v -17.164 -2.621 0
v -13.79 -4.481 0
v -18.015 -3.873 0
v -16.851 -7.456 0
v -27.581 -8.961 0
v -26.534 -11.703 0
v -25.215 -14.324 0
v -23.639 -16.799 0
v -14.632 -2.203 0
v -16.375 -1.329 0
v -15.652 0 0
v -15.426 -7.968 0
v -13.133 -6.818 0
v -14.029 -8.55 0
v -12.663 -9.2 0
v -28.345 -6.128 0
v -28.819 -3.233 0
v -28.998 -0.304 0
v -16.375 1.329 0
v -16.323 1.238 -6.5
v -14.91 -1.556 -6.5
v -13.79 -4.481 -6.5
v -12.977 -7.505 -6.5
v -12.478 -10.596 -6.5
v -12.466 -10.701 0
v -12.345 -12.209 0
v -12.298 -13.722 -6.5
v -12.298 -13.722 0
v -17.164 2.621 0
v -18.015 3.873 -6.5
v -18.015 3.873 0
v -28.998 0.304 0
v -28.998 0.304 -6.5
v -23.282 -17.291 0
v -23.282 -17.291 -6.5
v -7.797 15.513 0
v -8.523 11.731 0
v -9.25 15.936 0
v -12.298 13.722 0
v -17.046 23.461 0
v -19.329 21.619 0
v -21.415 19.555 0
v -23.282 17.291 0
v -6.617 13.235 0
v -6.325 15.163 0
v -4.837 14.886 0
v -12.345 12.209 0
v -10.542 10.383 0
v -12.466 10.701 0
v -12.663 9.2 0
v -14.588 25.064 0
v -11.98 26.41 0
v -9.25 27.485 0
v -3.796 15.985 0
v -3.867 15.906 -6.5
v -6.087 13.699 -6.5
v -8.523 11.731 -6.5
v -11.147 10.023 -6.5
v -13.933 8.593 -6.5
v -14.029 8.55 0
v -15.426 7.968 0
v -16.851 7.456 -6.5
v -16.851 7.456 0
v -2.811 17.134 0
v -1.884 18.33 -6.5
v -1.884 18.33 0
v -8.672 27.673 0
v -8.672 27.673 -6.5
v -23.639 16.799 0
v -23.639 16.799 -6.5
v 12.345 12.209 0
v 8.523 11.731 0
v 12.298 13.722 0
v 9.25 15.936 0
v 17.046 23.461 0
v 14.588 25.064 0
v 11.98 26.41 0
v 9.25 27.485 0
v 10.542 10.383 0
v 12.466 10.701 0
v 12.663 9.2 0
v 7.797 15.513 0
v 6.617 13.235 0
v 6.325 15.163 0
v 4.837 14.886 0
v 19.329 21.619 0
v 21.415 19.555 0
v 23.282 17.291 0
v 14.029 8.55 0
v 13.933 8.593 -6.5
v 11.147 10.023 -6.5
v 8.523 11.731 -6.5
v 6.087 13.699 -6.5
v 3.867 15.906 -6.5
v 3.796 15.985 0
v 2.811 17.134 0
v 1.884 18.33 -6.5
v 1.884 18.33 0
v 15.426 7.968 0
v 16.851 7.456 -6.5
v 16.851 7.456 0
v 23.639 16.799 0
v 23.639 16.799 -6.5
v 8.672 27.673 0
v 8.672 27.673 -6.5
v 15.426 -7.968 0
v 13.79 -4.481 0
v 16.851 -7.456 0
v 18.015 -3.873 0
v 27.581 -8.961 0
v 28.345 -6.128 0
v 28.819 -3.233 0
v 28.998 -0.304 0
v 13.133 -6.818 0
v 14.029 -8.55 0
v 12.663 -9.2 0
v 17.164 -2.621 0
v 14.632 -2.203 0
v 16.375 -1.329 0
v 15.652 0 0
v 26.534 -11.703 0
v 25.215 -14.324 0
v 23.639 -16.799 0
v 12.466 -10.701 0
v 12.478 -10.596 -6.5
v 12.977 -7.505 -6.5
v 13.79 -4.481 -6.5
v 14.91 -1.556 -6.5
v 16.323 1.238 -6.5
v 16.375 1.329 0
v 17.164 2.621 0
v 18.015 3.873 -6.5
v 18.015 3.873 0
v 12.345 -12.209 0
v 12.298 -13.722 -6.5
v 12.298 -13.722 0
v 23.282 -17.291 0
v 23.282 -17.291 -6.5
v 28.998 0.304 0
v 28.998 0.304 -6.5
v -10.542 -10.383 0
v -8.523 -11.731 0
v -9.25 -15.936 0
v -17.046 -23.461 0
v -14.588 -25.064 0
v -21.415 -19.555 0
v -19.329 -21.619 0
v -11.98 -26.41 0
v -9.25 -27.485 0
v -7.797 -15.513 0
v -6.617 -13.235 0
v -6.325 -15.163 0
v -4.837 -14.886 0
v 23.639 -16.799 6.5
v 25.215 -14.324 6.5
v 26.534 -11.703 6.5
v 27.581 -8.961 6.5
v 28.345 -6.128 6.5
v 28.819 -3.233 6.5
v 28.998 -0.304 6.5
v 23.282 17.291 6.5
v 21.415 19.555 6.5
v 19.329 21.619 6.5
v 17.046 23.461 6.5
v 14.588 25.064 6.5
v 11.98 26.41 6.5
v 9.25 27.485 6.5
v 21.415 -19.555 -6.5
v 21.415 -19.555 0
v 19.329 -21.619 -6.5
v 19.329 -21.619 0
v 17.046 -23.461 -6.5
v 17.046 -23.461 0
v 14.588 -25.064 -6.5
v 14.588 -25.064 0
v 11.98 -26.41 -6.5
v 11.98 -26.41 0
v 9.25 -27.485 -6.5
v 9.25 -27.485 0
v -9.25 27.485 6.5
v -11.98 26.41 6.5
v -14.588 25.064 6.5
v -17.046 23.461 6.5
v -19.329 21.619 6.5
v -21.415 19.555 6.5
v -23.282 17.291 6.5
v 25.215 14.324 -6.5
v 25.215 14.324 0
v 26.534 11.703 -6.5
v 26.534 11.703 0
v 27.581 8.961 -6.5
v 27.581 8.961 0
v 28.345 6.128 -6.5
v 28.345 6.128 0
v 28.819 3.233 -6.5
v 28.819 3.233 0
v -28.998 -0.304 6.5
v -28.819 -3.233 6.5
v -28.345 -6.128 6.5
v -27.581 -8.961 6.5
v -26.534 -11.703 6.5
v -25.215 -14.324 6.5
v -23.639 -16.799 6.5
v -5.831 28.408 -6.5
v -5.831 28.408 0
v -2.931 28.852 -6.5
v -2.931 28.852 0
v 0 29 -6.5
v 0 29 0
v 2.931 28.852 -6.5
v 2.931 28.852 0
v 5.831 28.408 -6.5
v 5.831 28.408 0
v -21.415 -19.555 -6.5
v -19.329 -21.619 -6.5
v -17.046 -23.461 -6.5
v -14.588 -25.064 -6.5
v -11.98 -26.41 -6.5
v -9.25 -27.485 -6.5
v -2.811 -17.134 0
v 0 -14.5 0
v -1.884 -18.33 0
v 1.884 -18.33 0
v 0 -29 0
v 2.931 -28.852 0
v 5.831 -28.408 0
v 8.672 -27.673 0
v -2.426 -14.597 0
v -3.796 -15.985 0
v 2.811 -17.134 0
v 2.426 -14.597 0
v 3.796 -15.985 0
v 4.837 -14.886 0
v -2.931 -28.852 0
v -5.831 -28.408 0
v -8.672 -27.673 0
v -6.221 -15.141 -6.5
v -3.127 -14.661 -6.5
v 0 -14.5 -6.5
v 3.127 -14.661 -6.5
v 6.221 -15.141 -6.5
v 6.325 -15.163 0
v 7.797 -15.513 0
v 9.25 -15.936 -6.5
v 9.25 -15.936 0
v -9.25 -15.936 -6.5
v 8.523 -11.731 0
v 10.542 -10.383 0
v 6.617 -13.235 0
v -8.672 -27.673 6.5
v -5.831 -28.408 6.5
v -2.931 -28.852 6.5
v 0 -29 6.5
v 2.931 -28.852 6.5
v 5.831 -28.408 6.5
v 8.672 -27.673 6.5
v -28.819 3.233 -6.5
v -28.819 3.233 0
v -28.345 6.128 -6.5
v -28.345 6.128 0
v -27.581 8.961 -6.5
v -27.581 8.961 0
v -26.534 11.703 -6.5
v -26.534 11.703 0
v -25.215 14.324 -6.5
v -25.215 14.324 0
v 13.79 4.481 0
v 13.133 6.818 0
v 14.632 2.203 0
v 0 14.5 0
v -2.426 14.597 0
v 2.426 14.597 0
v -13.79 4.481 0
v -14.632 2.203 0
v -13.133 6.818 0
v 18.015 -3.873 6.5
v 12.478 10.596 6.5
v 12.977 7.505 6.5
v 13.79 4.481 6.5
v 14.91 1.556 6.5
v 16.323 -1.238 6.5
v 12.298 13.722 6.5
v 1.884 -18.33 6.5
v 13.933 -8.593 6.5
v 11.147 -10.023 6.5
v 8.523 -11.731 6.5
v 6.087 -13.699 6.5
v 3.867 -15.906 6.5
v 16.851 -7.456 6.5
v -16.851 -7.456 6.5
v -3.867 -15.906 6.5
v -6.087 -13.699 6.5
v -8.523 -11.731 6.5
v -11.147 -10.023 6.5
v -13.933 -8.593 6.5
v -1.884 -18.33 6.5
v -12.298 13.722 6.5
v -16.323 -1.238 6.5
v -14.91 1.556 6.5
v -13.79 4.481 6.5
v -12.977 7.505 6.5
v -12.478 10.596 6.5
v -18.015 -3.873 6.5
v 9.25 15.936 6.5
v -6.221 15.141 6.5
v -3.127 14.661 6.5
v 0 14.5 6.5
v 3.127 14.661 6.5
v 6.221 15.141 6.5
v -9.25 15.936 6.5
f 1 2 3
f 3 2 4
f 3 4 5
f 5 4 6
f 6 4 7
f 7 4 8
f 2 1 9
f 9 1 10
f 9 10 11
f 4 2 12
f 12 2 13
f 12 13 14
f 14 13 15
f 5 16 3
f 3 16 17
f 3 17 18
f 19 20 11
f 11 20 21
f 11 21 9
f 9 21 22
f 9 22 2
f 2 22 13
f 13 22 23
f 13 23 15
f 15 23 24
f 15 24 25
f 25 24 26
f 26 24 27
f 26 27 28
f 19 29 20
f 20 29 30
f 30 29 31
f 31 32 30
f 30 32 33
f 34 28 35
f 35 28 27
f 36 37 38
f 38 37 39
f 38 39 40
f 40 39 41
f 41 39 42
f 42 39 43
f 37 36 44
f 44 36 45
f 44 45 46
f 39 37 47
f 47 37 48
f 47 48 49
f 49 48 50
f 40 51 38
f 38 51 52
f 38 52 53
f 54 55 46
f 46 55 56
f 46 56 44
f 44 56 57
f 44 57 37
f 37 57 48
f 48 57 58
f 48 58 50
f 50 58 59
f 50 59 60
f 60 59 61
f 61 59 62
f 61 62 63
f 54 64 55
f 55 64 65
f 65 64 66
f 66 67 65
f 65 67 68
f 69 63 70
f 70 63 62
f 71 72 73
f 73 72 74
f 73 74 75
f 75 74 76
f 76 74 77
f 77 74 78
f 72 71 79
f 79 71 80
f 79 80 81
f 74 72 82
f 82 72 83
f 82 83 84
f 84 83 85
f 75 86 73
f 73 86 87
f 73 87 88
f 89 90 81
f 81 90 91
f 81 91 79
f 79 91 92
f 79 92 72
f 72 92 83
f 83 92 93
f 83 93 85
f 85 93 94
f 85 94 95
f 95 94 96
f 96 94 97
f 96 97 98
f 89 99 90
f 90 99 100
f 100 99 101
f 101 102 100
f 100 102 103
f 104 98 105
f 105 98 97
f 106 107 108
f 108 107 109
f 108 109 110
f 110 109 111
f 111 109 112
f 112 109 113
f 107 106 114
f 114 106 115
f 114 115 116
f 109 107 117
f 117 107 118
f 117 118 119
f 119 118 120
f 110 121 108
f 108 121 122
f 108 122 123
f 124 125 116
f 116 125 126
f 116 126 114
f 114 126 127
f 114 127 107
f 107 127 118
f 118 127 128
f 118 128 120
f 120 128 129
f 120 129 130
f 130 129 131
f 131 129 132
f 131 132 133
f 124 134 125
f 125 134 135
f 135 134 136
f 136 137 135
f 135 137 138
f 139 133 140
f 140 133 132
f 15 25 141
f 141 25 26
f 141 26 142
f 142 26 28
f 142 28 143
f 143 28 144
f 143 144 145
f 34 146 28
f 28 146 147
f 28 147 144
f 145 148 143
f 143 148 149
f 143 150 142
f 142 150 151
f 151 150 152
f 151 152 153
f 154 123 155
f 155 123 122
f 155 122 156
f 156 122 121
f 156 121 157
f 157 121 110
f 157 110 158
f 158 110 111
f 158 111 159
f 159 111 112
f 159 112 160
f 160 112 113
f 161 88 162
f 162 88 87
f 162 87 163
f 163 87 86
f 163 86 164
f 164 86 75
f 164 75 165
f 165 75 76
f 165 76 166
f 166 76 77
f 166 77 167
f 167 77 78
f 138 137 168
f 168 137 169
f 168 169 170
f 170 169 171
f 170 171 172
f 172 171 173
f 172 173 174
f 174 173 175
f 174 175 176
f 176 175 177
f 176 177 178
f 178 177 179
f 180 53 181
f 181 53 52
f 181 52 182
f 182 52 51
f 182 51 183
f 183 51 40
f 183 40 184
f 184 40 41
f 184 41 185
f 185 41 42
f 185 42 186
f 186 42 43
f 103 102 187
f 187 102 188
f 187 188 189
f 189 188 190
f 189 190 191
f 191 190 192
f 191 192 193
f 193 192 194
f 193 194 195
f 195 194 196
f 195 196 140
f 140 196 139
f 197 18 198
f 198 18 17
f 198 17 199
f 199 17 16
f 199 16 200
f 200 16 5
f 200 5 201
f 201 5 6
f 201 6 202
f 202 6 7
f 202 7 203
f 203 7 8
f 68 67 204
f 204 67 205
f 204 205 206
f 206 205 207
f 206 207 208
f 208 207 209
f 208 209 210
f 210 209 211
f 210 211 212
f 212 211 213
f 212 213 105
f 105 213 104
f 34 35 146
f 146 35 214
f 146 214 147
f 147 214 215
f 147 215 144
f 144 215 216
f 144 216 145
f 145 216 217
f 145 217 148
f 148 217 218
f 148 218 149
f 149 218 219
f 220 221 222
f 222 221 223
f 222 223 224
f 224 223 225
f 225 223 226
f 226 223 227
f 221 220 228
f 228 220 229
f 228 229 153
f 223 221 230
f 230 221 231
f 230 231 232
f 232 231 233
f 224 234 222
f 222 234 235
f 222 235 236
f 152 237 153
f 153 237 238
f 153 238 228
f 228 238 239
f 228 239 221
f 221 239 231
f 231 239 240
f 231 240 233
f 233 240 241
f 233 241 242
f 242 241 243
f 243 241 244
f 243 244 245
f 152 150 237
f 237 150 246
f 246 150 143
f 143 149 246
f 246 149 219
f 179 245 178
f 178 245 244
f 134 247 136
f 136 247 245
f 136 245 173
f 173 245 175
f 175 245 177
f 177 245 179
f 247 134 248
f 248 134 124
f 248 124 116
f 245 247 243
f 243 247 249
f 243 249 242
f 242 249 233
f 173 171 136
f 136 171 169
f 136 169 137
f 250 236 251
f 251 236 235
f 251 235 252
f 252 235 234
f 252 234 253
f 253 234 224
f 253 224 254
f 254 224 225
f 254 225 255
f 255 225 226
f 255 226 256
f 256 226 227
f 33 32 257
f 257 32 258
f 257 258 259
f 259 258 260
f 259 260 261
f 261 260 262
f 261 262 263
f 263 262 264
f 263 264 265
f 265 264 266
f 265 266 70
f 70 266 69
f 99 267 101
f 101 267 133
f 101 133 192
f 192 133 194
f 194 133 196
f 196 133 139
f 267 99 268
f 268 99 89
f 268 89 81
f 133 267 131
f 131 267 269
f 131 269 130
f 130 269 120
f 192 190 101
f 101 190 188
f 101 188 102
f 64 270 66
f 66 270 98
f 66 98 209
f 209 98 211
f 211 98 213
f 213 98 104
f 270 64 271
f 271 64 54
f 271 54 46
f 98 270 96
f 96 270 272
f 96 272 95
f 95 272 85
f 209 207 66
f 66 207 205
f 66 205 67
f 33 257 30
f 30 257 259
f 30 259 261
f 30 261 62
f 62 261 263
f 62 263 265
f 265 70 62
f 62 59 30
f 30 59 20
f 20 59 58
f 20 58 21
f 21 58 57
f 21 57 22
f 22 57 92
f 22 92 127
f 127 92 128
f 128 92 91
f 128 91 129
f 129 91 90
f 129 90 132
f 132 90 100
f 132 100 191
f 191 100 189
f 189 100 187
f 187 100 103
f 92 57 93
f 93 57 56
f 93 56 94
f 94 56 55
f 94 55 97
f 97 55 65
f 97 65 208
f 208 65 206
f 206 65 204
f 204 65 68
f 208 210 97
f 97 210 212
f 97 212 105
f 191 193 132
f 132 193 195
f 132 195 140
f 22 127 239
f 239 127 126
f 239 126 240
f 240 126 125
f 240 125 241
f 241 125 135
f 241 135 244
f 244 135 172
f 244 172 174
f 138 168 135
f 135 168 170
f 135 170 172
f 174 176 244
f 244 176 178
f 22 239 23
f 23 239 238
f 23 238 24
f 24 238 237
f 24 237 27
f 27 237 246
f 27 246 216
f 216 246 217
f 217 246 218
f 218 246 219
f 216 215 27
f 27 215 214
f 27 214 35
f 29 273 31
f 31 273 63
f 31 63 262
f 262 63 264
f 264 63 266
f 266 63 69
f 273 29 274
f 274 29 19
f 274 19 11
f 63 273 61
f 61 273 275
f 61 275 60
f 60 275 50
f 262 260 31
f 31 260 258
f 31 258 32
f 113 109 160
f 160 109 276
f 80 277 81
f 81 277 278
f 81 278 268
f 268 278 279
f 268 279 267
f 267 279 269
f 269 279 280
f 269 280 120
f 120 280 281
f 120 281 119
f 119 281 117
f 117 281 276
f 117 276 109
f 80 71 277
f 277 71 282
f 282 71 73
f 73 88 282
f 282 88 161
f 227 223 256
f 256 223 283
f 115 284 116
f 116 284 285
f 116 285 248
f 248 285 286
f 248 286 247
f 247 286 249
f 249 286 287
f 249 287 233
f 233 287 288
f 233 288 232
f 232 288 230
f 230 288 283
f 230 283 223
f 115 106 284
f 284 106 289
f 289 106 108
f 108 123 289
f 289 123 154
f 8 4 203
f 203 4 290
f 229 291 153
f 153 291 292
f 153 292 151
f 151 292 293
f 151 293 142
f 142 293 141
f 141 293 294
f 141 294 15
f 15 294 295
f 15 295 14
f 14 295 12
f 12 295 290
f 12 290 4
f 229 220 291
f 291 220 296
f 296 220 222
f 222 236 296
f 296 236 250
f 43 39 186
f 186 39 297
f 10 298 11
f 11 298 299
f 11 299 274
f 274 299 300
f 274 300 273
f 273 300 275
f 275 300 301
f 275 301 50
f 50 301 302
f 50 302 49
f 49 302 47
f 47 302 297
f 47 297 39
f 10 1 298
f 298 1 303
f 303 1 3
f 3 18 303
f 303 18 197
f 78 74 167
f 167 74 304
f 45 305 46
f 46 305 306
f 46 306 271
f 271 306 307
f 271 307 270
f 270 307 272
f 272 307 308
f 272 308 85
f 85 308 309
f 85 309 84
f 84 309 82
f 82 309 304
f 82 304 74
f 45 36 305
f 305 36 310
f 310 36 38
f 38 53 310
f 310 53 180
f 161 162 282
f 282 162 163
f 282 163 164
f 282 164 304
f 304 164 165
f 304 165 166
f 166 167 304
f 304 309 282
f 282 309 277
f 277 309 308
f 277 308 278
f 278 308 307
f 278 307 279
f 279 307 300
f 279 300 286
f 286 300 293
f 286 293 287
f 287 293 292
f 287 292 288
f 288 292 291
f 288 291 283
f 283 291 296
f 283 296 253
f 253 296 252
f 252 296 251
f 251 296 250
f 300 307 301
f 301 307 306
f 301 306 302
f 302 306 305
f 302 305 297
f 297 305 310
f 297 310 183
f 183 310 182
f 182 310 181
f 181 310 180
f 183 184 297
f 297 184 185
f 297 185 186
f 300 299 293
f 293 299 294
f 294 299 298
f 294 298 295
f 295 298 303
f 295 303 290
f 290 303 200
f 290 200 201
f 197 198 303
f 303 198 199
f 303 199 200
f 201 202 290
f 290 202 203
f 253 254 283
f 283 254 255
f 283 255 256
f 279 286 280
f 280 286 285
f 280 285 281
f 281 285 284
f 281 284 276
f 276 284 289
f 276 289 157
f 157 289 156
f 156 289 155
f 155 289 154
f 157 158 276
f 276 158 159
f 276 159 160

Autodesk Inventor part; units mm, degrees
ref_plane "YZ Plane" through (0, 0, 0) normal (1, 0, 0) x (0, 1, 0)
ref_plane "XZ Plane" through (0, 0, 0) normal (0, 1, 0) x (-1, 0, 0)
ref_plane "XY Plane" through (0, 0, 0) normal (0, 0, 1) x (1, 0, 0)
sketch "スケッチ1" plane through (0, 0, 0) normal (0, 0, 1) x (1, 0, 0)
  circle A0 centre (0, 0) radius 29
  line L0 (-9.25, 29) -> (9.25, 29)
  line L1 (9.25, 29) -> (9.25, 0)
  line L2 (9.25, 0) -> (-9.25, 0)
  line L3 (-9.25, 0) -> (-9.25, 29)
  line L4 (-9.25, 22.5) -> (9.25, 22.5)
  arc A1 (-9.25, 17.5148) -> (9.25, 17.5148) centre (0, 45) ccw
  arc A2 (-9.25, 15.9365) -> (9.25, 15.9365) centre (0, 45) ccw
  point P0 (9.25, 27.4852)
  point P1 (-9.25, 27.4852)
  point P2 (0, 22.5)
  point P3 (0, 22.5)
  dimension "d0" = 58
  dimension "d1" = 18.5
  dimension "d2" = 6.5
  dimension "d9" = 1.5
extrude "押し出し3" add sketch "スケッチ1" along normal blind 6.5 contours A0 L3 L2 L1 | L1 L4 L3 A0 | L1 A1 L3 L4 | L1 A2 L3 A1 | L1 L2 L3 A2
extrude "押し出し4" cut sketch "スケッチ1" along normal blind 6.5 contours L1 L4 L3 A0 | L1 A1 L3 L4 | L1 A2 L3 A1
pattern_circular "円形状パターン1" count 5 over 360 about axis through (0, 0, -10) along (0, 0, 1) of "押し出し4"
sketch "スケッチ4" plane through (0, 0, 0) normal (0, 0, -1) x (-1, 0, 0)
  arc A0 (-9.25, 27.4852) -> (-23.2816, 17.2907) centre (0, 0) ccw projected
  circle A1 centre (0, 0) radius 29
  line L0 (-9.25, 15.9365) -> (-9.25, 27.4852) construction
  arc A2 (-9.25, 15.9365) -> (9.25, 15.9365) centre (0, 45) ccw construction
  line L1 (9.25, 27.4852) -> (9.25, 15.9365) construction
  line L2 (40.6, 0) -> (-40.6, 0) construction
  line L3 (-9.25, -15.9365) -> (-9.25, -27.4852)
  arc A3 (9.25, -15.9365) -> (-9.25, -15.9365) centre (0, -45) ccw
  line L4 (9.25, -27.4852) -> (9.25, -15.9365)
  point P0 (-9.25, 27.4852)
  point P1 (-23.2816, 17.2907)
extrude "押し出し5" add sketch "スケッチ4" along normal blind 6.5
extrude "押し出し6" cut sketch "スケッチ4" along normal blind 6.5 contours L3 A3 L4 A1
pattern_circular "円形状パターン2" count 5 over 360 about axis through (0, 0, -10) along (0, 0, 1) of "押し出し6"
properties part number "base" material "ゴム"
